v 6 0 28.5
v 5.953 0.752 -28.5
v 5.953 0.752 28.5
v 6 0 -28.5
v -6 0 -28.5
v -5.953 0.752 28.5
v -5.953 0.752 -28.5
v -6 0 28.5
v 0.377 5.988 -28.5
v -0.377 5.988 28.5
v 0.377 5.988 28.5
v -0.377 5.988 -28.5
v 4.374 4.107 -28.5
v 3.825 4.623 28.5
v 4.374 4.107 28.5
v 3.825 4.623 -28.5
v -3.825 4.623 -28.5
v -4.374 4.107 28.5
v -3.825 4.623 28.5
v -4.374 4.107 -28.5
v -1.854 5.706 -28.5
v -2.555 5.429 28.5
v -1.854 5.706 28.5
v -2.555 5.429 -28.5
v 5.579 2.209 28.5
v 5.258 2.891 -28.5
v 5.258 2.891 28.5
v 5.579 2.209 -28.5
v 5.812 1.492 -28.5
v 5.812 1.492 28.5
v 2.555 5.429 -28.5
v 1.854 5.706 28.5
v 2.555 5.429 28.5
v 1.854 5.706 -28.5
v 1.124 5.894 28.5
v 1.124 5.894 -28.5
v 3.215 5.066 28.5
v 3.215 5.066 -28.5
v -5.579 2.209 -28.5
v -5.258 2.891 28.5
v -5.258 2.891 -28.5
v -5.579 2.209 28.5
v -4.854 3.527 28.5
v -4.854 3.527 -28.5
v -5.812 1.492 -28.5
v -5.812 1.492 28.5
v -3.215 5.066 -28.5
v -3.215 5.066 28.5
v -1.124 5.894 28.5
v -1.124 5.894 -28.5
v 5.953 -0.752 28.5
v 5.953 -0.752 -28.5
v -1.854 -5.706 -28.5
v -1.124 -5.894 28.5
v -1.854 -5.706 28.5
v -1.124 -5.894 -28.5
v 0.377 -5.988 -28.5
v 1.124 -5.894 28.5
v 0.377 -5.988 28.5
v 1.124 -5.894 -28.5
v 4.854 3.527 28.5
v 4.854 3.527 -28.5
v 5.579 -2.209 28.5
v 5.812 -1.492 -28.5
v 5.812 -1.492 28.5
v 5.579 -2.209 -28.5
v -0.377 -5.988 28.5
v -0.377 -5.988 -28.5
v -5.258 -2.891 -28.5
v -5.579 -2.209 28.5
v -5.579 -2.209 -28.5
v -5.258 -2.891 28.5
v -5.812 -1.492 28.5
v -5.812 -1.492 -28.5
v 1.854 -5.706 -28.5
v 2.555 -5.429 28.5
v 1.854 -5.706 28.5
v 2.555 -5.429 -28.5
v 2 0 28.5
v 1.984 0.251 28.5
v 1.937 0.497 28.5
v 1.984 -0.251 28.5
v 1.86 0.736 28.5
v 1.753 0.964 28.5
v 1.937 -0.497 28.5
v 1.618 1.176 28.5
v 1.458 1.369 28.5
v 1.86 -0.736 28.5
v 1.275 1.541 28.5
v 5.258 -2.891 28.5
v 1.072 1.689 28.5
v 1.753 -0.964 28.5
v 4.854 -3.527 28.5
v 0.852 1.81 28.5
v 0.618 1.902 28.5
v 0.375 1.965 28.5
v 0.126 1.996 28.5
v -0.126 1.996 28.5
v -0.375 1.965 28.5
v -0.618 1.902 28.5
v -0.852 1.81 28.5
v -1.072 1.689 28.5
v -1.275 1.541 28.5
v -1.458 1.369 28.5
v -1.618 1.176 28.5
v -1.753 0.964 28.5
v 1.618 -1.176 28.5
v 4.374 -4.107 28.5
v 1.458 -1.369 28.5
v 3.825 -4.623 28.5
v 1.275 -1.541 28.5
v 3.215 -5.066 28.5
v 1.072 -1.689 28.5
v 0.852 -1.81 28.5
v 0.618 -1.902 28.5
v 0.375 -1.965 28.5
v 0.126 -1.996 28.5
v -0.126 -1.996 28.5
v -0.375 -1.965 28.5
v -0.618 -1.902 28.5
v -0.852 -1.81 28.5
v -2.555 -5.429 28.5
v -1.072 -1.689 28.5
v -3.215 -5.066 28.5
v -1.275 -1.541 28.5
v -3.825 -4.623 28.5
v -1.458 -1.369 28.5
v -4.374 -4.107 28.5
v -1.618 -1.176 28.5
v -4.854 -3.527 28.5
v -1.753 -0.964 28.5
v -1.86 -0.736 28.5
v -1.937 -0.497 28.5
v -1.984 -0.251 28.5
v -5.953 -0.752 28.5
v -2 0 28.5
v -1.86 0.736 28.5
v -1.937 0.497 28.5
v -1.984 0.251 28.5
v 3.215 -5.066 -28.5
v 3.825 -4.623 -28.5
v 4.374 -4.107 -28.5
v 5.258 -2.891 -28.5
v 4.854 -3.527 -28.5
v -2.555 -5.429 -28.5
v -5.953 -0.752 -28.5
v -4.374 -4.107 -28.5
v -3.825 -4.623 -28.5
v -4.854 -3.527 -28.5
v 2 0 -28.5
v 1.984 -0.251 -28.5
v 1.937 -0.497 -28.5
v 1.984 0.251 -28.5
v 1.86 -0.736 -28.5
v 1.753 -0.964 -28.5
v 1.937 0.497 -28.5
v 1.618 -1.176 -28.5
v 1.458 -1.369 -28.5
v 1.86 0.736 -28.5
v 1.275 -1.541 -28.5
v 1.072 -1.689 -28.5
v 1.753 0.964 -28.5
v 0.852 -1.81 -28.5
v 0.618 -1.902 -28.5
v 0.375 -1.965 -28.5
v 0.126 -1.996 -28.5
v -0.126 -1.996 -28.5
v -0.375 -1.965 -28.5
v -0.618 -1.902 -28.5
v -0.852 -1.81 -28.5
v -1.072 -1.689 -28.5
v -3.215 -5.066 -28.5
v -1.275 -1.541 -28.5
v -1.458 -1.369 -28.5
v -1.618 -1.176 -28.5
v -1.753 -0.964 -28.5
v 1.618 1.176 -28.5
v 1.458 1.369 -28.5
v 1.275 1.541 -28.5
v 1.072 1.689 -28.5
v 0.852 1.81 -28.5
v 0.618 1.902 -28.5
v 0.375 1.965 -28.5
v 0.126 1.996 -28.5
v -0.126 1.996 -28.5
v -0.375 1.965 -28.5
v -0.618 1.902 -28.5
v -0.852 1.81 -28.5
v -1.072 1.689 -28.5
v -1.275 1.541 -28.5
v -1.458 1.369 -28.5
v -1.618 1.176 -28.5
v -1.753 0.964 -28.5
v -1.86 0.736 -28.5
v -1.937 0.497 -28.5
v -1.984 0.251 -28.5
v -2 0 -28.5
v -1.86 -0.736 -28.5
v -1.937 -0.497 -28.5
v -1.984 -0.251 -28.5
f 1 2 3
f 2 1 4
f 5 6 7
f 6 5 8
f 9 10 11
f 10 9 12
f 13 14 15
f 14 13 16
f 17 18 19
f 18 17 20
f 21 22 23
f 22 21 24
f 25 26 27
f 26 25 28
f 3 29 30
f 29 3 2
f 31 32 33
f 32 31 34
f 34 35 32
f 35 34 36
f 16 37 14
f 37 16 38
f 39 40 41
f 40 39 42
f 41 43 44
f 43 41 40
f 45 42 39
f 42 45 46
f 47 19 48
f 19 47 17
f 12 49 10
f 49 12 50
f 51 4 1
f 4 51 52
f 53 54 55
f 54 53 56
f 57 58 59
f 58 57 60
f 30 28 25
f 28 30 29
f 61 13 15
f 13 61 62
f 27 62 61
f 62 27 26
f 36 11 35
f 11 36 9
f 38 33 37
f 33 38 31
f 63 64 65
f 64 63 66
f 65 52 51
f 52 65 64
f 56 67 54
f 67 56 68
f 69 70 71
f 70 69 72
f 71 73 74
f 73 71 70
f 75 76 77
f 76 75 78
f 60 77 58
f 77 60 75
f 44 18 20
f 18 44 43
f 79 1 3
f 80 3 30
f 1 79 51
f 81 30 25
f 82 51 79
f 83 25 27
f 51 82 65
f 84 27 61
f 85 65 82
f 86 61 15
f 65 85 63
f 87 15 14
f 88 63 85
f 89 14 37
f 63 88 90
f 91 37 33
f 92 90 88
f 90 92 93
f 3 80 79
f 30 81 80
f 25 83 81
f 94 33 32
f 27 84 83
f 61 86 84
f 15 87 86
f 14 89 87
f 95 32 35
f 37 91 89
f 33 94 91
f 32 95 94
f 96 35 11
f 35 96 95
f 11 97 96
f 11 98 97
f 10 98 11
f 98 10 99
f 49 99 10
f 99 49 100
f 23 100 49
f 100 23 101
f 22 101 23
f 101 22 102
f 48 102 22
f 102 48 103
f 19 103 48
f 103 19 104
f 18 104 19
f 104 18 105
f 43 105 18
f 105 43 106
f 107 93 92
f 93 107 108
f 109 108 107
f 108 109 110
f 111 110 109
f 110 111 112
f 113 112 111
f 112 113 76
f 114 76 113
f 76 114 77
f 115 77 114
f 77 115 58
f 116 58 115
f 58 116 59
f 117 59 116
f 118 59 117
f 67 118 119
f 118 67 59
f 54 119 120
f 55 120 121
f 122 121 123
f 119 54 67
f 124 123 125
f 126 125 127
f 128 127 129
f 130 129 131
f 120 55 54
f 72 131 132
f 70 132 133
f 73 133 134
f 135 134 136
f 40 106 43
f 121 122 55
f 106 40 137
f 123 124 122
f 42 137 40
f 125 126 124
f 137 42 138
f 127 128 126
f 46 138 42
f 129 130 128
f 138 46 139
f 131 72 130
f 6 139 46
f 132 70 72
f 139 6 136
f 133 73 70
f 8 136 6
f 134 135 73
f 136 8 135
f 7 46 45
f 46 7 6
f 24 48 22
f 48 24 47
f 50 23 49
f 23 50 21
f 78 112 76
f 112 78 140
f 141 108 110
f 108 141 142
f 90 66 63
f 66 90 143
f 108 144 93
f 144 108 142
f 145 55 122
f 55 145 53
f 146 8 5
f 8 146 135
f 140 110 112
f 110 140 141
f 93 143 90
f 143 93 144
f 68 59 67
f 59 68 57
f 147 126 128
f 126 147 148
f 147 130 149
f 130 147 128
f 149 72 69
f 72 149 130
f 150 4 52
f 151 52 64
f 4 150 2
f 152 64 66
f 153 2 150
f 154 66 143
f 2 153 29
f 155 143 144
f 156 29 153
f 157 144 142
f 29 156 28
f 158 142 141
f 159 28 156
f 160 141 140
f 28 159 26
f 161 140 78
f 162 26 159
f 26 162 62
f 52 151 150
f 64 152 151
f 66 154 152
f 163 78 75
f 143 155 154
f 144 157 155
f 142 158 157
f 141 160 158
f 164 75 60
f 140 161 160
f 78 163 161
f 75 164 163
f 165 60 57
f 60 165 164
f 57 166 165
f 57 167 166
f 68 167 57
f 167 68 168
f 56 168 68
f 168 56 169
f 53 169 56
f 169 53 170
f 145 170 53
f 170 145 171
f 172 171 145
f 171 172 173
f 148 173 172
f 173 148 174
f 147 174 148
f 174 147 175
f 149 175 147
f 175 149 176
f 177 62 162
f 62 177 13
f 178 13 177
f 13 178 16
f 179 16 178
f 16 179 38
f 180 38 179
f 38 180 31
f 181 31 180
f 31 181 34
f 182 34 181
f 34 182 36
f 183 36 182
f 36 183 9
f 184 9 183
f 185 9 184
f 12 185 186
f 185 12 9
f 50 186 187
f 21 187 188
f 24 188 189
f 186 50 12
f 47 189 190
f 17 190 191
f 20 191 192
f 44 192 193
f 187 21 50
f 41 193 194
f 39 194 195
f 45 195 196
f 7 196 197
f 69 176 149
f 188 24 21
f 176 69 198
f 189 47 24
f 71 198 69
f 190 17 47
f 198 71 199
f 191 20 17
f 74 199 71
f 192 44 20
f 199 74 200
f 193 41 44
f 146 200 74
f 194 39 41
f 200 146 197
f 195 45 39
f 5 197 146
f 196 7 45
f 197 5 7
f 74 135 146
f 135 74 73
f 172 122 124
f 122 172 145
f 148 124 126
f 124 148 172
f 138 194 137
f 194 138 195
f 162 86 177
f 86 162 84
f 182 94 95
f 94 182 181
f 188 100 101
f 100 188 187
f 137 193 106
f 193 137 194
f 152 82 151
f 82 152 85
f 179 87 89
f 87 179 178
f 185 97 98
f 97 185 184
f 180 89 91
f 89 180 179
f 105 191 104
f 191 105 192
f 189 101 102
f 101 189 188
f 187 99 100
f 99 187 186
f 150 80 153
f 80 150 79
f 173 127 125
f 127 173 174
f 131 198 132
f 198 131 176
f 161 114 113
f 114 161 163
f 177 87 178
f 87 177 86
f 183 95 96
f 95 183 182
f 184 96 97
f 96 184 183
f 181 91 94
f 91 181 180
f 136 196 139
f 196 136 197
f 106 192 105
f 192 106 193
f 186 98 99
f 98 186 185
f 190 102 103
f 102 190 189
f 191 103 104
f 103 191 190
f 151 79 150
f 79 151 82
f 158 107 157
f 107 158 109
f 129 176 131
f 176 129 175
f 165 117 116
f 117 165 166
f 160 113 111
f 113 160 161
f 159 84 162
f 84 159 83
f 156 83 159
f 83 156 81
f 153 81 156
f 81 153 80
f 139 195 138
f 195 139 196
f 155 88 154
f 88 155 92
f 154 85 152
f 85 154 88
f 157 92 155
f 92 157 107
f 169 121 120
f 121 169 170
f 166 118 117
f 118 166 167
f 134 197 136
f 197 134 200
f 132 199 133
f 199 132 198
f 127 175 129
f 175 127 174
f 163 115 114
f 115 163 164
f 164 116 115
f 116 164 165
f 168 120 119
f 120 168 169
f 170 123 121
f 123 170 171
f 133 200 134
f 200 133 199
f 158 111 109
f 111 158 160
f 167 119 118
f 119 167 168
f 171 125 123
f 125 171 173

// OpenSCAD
$fn = 50;


difference() {
	union() {
		translate(v = [0, 0, -28.5000000000]) {
			cylinder(h = 57, r = 6.0000000000);
		}
	}
	union() {
		translate(v = [0, 0, -100.0000000000]) {
			cylinder(h = 200, r = 2.0000000000);
		}
	}
}
